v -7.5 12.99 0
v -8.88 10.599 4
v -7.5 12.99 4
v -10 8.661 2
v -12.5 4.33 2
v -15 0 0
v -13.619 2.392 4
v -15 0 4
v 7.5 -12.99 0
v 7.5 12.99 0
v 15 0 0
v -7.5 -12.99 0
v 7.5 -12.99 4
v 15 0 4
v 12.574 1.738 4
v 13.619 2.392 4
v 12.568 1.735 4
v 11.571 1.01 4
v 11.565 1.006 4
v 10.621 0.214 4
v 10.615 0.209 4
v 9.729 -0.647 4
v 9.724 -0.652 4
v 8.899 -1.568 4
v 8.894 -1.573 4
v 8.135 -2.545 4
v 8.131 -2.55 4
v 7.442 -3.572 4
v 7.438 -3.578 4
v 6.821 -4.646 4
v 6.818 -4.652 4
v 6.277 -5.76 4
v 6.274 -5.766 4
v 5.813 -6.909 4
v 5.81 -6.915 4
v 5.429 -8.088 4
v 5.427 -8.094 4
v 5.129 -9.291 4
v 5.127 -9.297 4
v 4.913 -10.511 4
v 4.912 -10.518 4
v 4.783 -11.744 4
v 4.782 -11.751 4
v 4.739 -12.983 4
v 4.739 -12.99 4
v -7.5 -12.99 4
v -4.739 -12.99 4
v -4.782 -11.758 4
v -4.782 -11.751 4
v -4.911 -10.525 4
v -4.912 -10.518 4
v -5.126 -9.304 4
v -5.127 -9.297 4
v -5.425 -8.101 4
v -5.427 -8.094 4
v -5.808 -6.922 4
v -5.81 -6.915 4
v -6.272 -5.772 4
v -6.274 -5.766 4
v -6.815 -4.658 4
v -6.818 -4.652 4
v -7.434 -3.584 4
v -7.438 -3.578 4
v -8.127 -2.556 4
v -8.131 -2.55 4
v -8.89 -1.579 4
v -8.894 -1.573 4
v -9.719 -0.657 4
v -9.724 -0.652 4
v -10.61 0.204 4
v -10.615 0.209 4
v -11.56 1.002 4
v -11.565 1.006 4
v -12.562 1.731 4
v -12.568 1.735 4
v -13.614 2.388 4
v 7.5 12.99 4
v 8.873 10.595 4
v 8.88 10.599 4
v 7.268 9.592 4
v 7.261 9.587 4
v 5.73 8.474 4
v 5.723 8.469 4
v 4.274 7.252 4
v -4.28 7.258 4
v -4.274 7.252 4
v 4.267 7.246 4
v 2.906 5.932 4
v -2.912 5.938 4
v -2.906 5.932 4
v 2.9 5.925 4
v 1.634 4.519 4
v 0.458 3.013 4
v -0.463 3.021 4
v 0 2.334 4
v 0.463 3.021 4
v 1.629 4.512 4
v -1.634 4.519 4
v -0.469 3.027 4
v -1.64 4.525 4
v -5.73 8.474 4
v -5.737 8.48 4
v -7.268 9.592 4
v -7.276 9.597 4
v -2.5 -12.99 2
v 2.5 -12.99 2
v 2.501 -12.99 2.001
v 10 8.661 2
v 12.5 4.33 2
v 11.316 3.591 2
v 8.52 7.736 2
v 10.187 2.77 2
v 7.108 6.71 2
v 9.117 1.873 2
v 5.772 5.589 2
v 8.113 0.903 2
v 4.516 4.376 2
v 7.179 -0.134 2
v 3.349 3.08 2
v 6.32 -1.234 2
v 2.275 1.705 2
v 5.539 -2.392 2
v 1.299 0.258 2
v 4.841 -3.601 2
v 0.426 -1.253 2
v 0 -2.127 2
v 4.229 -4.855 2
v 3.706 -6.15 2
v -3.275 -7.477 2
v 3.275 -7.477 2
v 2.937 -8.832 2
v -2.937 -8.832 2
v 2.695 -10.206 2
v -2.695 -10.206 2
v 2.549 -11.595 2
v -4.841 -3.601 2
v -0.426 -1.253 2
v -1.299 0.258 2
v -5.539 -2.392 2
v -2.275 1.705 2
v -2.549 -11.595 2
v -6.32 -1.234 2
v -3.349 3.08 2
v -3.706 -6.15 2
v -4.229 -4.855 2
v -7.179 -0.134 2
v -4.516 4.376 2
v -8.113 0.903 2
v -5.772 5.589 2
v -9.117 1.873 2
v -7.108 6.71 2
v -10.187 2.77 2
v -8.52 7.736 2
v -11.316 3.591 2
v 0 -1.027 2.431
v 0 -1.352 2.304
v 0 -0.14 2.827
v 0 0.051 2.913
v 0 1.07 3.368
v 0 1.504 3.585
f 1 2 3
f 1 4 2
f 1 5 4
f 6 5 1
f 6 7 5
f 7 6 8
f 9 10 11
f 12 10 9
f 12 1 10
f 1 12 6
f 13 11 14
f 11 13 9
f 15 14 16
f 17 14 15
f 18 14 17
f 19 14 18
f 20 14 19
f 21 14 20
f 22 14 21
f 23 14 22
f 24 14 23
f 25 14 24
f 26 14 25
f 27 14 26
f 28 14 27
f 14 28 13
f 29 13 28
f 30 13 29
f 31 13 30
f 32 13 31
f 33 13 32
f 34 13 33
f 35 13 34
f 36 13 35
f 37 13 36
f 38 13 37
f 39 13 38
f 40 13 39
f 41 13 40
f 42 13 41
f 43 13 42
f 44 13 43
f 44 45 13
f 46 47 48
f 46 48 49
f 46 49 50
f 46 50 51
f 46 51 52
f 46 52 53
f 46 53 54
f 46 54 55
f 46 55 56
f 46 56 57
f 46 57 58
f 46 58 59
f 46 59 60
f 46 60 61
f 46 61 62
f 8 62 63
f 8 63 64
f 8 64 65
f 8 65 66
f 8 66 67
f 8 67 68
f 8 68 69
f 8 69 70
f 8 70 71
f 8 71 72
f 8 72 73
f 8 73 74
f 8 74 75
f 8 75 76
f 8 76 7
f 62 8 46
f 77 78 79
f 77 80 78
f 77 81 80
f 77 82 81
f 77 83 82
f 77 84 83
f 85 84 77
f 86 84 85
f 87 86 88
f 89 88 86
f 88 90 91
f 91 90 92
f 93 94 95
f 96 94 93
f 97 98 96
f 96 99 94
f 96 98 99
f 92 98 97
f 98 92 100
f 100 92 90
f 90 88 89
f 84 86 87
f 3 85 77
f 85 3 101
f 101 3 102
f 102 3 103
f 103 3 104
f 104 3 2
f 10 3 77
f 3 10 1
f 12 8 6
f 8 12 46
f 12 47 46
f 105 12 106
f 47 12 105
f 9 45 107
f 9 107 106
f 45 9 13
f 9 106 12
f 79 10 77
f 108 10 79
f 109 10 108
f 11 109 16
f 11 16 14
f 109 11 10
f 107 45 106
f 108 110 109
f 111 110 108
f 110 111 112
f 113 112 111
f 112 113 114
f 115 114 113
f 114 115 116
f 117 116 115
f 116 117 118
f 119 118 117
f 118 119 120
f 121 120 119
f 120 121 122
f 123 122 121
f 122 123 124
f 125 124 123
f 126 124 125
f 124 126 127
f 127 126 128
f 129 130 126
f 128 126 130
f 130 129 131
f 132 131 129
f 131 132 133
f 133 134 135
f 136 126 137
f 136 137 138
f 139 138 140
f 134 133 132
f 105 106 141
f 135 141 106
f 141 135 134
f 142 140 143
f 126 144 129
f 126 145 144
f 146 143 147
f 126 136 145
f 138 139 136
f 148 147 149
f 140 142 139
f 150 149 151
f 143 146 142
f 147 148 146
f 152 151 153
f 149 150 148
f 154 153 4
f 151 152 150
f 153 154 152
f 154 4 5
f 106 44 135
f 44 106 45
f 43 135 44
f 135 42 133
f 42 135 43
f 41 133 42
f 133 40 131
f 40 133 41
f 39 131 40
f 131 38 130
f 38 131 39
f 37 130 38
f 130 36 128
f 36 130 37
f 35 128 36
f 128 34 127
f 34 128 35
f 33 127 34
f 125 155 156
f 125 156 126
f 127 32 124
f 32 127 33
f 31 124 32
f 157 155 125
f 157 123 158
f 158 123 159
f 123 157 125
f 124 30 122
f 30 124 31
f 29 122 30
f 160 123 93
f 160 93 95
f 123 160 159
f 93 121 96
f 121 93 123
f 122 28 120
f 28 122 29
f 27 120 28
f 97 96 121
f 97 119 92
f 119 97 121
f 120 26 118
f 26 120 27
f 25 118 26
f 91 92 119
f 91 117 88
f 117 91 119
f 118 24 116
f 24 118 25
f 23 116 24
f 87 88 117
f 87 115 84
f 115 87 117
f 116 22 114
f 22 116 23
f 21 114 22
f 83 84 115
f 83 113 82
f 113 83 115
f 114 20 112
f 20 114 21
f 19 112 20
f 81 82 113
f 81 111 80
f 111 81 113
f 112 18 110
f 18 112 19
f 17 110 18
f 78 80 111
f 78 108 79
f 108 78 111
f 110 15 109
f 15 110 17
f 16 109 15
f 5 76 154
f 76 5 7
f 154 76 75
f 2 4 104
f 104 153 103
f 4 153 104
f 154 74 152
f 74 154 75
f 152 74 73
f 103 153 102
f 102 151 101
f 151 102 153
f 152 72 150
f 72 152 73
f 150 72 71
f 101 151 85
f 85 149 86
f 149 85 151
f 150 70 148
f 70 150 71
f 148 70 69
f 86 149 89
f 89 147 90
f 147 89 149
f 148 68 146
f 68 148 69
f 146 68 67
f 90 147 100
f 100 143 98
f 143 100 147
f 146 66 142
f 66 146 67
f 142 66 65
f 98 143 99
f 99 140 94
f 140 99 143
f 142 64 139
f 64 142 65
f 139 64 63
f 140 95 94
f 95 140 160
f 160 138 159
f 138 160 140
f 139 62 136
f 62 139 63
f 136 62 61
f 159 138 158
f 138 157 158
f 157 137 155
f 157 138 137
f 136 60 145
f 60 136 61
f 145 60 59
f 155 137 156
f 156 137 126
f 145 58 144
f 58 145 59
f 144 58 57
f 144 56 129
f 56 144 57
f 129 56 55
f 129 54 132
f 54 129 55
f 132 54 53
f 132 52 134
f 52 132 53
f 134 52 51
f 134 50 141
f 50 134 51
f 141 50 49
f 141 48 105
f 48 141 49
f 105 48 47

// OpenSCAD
difference()
{
    color("Peru", 1.0)
    {
        // hexagon base
        linear_extrude(height = 4, center = false, convexity = 10, twist = 0)
        circle(r=15, $fn=6);
    }
    
    color("DogerBlue", 1.0)
    {
        // canal shape
        translate([22.5,-12.99,0])
        rotate_extrude(angle=360, convexity=10, $fn=90)
        translate([-22.5,0,0])
        polygon(points=[[-4.75,4.01],[4.75,4.01],[2.5,2], [-2.5,2]]);
    }
    
    color("DogerBlue", 1.0)
    {
        // canal shape
        translate([-22.5,-12.99,0])
        rotate_extrude(angle=360, convexity=10, $fn=90)
        translate([22.5,0,0])
        polygon(points=[[-4.75,4.01],[4.75,4.01],[2.5,2], [-2.5,2]]);
    }
    
}
